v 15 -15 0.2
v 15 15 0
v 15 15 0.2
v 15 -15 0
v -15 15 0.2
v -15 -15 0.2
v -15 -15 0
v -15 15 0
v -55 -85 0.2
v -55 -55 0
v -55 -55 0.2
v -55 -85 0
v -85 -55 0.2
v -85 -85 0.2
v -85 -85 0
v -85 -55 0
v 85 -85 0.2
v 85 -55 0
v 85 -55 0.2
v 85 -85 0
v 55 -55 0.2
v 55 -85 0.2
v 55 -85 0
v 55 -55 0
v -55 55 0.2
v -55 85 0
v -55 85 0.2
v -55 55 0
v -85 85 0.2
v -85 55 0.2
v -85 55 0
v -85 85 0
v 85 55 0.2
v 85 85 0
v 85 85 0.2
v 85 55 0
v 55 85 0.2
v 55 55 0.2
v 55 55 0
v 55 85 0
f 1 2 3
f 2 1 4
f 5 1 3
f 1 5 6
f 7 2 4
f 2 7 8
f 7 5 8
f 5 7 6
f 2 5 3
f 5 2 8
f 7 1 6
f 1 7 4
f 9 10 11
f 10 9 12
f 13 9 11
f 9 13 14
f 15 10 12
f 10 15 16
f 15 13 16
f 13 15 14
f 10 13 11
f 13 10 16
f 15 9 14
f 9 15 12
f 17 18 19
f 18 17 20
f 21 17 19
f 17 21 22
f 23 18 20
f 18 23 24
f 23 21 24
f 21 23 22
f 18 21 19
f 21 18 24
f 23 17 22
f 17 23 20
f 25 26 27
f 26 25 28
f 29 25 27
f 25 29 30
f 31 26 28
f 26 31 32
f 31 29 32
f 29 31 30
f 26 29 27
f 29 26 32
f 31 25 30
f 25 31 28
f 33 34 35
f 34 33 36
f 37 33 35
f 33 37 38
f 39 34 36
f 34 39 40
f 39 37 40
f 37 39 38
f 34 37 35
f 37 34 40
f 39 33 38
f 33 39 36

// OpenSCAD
// =====================================================================
// 01 - TEST PRIMO STRATO (Ender 3 V2, piatto 220x220)
// =====================================================================
// 5 quadrati da UN SOLO layer: centro + 4 angoli.
// Serve per regolare livellamento e Z-offset (babystep) mentre stampa.
//
// In Cura:
//  - Altezza primo strato = 'spessore' qui sotto (default 0.2)
//  - Adesione: Skirt (NON brim), Top/Bottom pattern: Lines
//  - NON spostare il modello: deve restare centrato sul piatto
//
// Lettura:
//  - linee separate / tonde / si staccano  -> ugello troppo ALTO
//  - superficie trasparente, creste, raschia -> ugello troppo BASSO
//  - giusto: linee schiacciate, unite, superficie liscia e opaca
// =====================================================================

/* [Piatto] */
lato_piatto = 220;   // [200:1:235]
// Distanza del bordo dei pad dal bordo piatto (evita le clip del vetro)
margine     = 25;    // [10:1:40]

/* [Pad] */
lato_pad    = 30;    // [15:1:40]
// = altezza primo strato in Cura
spessore    = 0.2;   // [0.12:0.04:0.32]

offset_c = lato_piatto/2 - margine - lato_pad/2;

posizioni = [
    [0, 0],
    [-offset_c, -offset_c], [ offset_c, -offset_c],
    [-offset_c,  offset_c], [ offset_c,  offset_c]
];

for (p = posizioni)
    translate([p[0] - lato_pad/2, p[1] - lato_pad/2, 0])
        cube([lato_pad, lato_pad, spessore]);
